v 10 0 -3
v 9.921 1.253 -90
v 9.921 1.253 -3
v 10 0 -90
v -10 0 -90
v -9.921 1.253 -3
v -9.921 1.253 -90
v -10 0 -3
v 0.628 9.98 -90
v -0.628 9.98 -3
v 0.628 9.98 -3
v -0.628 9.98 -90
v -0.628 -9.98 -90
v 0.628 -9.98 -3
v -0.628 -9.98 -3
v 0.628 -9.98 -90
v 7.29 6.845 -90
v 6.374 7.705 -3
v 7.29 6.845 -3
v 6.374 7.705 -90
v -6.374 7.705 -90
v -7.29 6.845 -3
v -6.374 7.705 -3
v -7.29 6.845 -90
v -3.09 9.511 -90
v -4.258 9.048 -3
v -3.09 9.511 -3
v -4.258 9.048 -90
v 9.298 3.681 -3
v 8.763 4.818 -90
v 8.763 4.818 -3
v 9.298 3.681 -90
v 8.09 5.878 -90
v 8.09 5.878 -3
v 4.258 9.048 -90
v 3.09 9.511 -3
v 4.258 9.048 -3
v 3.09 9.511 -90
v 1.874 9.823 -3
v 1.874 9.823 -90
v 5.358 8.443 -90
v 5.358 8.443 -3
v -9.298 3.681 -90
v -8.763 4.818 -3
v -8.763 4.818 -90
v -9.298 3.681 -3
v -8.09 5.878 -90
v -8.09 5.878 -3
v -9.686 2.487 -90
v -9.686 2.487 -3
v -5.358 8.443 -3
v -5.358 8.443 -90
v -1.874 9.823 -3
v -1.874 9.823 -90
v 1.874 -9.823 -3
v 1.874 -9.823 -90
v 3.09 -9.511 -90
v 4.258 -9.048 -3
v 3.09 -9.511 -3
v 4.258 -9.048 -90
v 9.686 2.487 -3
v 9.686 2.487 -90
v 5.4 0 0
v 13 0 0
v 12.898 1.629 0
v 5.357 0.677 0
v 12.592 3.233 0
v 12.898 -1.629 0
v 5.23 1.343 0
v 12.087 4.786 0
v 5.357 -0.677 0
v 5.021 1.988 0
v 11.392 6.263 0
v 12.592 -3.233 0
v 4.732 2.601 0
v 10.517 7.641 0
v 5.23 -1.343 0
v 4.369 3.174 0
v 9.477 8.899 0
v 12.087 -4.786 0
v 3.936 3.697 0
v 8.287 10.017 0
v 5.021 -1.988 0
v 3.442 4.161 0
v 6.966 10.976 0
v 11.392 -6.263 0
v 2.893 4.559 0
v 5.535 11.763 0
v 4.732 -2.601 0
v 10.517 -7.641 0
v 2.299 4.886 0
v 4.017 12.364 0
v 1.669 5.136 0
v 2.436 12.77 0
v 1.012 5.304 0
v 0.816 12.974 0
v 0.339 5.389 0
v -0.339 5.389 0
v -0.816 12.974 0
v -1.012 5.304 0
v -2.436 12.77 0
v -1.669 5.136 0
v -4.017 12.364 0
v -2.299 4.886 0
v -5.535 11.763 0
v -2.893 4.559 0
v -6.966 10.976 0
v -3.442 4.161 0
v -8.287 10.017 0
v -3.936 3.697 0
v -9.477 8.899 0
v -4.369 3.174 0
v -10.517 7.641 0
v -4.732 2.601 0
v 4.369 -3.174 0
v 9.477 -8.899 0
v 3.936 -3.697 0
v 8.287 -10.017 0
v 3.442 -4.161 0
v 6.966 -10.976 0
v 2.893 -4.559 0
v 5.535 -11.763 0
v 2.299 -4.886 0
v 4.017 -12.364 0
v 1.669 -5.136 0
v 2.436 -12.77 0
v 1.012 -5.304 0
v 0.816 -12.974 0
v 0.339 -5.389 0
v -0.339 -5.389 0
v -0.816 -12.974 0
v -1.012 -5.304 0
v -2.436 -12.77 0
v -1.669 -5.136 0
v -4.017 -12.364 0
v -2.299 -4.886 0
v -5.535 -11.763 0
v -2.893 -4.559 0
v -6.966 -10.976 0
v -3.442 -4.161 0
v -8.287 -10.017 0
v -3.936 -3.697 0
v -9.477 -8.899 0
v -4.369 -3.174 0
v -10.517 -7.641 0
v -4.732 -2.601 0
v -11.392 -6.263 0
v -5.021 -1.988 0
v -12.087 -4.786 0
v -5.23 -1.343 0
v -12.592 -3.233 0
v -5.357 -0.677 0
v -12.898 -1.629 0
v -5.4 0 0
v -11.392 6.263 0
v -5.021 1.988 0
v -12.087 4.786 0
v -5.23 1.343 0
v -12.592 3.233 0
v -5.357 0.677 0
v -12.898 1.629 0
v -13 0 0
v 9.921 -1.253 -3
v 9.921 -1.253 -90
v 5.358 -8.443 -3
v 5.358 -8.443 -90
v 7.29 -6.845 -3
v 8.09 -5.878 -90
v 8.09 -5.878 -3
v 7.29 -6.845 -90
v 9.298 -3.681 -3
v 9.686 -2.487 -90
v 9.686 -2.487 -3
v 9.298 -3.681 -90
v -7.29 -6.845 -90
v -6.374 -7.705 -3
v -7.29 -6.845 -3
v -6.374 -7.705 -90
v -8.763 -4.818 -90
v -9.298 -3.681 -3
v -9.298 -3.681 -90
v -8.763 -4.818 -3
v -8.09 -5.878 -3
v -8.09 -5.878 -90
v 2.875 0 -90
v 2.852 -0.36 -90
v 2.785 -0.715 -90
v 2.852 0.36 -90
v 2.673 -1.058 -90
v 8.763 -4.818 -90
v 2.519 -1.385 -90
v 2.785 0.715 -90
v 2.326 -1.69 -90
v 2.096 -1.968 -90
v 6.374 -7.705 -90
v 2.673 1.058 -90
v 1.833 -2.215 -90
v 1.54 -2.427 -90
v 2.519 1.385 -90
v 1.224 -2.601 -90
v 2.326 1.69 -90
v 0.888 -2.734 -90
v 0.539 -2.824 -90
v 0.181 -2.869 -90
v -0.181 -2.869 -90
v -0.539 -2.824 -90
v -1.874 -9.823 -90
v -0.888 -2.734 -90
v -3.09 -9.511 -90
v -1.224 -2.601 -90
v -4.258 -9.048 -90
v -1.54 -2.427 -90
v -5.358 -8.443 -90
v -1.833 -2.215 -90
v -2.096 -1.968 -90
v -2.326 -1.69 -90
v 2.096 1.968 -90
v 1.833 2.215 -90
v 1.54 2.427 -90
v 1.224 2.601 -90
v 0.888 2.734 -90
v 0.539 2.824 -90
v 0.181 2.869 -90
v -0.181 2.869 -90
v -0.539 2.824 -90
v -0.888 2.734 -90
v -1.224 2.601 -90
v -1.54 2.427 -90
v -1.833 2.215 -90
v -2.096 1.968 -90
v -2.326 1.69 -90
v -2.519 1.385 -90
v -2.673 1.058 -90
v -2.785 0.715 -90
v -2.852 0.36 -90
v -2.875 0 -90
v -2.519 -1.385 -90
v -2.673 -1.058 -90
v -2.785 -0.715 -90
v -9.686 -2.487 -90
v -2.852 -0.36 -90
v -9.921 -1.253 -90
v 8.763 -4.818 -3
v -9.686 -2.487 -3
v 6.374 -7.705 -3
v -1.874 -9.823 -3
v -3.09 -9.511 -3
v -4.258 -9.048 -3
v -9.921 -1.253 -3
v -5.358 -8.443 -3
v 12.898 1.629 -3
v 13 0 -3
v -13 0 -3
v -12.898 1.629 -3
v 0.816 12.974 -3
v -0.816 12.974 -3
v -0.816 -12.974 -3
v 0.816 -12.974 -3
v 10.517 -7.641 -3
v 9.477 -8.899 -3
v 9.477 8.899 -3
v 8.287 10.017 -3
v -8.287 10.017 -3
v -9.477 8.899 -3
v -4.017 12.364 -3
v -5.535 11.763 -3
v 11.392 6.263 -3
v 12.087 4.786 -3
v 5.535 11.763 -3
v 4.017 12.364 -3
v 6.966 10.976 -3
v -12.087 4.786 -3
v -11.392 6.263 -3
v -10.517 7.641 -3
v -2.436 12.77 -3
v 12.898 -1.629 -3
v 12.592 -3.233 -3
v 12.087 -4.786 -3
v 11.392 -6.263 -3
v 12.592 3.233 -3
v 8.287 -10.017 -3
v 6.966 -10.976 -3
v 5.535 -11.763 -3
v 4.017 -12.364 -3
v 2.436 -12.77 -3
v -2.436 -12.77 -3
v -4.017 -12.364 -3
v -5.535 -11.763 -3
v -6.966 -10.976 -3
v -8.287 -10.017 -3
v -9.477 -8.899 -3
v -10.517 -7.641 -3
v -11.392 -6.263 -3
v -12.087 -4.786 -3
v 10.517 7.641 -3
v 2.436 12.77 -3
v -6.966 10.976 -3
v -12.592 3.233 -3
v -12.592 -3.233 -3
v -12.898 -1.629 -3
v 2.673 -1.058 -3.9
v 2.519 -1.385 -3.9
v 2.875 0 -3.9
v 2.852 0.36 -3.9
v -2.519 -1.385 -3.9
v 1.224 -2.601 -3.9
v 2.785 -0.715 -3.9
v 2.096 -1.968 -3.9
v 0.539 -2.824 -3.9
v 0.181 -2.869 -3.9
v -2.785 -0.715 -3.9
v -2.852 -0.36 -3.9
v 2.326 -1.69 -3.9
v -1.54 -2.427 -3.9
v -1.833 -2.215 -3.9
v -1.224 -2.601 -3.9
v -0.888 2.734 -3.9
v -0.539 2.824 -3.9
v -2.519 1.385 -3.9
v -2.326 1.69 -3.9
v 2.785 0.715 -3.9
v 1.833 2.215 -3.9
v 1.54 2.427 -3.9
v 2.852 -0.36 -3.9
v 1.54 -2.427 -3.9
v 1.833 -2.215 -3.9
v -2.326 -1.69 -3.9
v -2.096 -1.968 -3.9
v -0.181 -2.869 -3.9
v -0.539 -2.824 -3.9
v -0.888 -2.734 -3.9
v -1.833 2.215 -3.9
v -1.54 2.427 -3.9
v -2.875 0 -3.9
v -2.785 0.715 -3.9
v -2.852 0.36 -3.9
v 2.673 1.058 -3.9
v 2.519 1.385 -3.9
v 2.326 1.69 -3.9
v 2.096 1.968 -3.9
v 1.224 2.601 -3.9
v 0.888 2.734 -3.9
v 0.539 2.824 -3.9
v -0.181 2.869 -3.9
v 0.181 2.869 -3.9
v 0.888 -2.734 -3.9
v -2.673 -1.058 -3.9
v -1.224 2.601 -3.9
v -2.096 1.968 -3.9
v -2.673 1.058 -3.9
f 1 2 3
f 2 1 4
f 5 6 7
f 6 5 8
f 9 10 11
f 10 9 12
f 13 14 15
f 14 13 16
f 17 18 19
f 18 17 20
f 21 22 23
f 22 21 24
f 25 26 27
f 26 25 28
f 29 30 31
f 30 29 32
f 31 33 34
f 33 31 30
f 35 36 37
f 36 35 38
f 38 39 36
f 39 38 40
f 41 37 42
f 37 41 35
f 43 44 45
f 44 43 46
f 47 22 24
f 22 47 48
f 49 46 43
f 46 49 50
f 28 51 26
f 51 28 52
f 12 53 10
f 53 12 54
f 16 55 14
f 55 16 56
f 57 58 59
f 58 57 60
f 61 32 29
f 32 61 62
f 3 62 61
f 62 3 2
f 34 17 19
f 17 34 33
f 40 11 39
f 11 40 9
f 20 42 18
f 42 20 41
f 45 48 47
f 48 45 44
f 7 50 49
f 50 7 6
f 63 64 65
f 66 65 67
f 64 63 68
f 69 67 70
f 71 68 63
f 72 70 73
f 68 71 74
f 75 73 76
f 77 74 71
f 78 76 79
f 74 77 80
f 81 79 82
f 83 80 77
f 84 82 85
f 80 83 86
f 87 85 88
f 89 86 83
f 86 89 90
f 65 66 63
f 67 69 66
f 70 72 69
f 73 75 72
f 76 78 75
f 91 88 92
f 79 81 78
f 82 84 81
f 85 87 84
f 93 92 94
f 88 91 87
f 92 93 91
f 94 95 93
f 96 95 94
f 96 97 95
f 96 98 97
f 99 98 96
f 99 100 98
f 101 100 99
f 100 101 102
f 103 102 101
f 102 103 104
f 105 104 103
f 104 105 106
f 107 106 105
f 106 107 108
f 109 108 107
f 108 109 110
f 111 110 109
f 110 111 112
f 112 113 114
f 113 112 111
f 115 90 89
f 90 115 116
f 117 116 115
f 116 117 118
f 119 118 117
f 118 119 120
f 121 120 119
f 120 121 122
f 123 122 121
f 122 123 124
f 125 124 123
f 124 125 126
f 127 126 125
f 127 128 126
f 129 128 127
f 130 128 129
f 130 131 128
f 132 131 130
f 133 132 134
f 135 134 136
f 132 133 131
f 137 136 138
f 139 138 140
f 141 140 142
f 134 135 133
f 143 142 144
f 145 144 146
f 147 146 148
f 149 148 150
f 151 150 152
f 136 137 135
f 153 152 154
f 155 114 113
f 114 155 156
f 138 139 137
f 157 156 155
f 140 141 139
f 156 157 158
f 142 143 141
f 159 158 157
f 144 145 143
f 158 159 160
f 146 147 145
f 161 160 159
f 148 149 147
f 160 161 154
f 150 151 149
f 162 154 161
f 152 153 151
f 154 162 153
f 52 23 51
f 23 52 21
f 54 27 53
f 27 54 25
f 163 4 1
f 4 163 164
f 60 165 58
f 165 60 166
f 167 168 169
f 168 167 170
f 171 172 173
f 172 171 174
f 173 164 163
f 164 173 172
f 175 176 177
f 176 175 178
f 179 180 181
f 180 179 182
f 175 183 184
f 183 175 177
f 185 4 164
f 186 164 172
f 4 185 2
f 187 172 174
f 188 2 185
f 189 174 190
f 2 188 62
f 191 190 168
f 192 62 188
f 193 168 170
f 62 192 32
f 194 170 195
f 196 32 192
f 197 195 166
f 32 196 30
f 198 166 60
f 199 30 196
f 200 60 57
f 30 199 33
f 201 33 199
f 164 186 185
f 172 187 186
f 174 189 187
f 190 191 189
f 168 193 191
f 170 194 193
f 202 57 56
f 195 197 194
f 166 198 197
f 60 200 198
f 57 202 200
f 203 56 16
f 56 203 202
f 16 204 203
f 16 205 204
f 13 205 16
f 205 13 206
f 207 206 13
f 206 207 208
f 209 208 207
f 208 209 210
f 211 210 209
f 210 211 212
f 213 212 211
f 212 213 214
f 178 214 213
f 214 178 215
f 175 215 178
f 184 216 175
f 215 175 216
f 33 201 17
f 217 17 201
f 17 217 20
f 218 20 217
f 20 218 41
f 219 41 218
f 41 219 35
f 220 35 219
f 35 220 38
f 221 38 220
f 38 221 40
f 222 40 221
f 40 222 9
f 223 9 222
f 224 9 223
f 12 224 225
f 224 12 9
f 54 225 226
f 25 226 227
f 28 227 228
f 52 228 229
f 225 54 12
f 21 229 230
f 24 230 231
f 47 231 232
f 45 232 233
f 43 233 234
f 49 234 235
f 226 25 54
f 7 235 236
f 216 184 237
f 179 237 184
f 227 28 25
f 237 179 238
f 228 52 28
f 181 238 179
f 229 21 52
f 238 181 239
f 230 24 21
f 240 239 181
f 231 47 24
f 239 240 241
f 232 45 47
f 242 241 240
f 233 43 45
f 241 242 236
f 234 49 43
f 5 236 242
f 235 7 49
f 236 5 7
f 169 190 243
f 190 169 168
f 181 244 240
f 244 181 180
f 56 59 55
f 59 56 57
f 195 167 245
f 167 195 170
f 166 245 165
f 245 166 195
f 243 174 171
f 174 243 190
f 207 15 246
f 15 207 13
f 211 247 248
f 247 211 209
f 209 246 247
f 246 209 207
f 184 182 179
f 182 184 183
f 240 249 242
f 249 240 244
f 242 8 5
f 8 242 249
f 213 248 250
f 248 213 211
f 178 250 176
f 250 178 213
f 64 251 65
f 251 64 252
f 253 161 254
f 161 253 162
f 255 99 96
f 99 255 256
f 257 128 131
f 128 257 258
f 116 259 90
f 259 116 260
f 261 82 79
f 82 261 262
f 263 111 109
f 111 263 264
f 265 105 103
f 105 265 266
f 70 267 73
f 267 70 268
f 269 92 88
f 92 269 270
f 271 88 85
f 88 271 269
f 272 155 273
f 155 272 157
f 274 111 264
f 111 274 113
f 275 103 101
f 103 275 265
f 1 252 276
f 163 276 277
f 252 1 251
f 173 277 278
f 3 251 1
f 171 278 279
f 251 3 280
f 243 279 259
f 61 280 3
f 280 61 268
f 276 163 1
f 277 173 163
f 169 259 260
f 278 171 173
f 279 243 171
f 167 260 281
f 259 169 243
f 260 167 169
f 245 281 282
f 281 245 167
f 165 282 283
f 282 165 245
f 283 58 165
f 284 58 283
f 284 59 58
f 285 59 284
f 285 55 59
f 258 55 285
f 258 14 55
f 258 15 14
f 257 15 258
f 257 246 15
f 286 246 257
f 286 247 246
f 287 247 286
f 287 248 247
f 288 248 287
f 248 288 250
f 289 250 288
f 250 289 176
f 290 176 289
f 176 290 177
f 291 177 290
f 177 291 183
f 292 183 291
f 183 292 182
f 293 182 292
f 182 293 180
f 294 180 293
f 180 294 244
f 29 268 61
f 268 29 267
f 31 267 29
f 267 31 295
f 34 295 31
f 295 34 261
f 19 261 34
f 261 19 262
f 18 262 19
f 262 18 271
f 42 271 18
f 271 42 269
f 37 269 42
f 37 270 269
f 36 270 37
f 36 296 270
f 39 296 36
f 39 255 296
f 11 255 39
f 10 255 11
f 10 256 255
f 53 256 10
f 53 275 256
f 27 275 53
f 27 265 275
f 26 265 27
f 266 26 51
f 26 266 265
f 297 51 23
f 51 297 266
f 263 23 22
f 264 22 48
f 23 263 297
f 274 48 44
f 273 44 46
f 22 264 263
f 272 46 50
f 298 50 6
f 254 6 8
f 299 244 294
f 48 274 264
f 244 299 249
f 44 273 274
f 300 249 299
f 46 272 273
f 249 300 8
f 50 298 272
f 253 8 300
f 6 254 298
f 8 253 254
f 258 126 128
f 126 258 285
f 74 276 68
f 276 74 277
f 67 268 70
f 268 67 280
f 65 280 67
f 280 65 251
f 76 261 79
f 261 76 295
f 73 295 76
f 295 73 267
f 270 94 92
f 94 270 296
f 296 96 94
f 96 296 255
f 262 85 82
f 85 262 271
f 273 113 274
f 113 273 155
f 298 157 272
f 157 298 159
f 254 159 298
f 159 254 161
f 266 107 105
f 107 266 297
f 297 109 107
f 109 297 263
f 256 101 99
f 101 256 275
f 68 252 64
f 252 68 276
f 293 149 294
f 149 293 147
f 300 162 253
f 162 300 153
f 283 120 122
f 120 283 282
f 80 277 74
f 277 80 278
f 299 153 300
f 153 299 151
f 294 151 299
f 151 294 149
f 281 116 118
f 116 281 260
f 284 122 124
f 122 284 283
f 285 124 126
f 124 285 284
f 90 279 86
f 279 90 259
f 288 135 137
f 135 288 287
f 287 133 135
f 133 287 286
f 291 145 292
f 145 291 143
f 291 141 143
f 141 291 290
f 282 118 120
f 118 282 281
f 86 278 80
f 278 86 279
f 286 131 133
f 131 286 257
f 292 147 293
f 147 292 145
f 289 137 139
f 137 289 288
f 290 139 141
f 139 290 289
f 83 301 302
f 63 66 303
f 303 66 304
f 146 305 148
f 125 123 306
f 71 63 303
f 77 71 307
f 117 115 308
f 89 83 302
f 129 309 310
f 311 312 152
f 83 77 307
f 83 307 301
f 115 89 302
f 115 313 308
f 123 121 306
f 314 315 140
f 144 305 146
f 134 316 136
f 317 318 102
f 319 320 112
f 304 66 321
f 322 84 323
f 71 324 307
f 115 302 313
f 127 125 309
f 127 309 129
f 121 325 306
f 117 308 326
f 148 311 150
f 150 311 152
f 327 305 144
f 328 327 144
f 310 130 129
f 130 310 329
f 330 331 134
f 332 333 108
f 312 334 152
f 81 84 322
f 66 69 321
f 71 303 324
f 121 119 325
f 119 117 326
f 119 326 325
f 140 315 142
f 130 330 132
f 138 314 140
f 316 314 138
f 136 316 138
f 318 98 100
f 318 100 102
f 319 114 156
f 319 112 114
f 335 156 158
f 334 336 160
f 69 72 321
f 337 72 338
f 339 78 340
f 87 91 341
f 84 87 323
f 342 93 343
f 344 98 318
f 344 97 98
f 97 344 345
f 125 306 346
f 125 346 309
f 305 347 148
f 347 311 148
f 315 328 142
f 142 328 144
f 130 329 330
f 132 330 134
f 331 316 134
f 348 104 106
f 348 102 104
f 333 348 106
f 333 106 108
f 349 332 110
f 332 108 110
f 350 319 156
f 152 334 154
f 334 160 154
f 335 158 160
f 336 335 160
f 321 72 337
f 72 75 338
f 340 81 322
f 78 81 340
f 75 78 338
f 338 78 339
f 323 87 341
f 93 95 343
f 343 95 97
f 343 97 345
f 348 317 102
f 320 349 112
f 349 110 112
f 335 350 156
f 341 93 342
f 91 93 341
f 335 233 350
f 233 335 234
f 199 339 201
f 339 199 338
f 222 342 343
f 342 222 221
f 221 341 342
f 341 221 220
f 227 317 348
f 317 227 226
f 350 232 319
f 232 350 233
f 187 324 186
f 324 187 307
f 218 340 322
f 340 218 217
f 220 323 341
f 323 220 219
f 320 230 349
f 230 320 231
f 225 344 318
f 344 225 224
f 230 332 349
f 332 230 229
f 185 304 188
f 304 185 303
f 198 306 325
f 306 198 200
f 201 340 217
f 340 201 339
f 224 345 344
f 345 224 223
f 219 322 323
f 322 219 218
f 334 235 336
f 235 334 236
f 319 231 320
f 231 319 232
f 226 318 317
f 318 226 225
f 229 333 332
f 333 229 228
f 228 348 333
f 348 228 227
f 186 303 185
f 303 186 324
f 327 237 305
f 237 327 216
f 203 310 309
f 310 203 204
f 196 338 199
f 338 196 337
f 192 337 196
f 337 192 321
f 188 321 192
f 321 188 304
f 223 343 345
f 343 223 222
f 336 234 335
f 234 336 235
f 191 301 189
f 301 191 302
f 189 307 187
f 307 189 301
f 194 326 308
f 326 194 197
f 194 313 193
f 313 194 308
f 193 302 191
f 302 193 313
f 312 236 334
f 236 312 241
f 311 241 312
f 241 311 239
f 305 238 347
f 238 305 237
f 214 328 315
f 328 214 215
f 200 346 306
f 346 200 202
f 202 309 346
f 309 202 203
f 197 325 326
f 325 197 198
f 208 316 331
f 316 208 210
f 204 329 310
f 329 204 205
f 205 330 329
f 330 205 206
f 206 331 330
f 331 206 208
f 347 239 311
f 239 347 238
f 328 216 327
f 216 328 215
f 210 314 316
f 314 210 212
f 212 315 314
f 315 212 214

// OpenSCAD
$fn = 50;


difference() {
	union() {
		translate(v = [0, 0, -90.0000000000]) {
			cylinder(h = 90, r = 10.0000000000);
		}
		translate(v = [0, 0, -3.0000000000]) {
			cylinder(h = 3, r = 13.0000000000);
		}
	}
	union() {
		translate(v = [0, 0, 0]) {
			rotate(a = [0, 0, 0]) {
				difference() {
					union() {
						#translate(v = [0, 0, -90.0000000000]) {
							cylinder(h = 90, r = 2.6000000000);
						}
						#translate(v = [0, 0, -3.9000000000]) {
							cylinder(h = 3.9000000000, r1 = 2.8750000000, r2 = 5.4000000000);
						}
						#translate(v = [0, 0, -90.0000000000]) {
							cylinder(h = 90, r = 2.8750000000);
						}
						#translate(v = [0, 0, -90.0000000000]) {
							cylinder(h = 90, r = 2.6000000000);
						}
					}
					union();
				}
			}
		}
	}
}
